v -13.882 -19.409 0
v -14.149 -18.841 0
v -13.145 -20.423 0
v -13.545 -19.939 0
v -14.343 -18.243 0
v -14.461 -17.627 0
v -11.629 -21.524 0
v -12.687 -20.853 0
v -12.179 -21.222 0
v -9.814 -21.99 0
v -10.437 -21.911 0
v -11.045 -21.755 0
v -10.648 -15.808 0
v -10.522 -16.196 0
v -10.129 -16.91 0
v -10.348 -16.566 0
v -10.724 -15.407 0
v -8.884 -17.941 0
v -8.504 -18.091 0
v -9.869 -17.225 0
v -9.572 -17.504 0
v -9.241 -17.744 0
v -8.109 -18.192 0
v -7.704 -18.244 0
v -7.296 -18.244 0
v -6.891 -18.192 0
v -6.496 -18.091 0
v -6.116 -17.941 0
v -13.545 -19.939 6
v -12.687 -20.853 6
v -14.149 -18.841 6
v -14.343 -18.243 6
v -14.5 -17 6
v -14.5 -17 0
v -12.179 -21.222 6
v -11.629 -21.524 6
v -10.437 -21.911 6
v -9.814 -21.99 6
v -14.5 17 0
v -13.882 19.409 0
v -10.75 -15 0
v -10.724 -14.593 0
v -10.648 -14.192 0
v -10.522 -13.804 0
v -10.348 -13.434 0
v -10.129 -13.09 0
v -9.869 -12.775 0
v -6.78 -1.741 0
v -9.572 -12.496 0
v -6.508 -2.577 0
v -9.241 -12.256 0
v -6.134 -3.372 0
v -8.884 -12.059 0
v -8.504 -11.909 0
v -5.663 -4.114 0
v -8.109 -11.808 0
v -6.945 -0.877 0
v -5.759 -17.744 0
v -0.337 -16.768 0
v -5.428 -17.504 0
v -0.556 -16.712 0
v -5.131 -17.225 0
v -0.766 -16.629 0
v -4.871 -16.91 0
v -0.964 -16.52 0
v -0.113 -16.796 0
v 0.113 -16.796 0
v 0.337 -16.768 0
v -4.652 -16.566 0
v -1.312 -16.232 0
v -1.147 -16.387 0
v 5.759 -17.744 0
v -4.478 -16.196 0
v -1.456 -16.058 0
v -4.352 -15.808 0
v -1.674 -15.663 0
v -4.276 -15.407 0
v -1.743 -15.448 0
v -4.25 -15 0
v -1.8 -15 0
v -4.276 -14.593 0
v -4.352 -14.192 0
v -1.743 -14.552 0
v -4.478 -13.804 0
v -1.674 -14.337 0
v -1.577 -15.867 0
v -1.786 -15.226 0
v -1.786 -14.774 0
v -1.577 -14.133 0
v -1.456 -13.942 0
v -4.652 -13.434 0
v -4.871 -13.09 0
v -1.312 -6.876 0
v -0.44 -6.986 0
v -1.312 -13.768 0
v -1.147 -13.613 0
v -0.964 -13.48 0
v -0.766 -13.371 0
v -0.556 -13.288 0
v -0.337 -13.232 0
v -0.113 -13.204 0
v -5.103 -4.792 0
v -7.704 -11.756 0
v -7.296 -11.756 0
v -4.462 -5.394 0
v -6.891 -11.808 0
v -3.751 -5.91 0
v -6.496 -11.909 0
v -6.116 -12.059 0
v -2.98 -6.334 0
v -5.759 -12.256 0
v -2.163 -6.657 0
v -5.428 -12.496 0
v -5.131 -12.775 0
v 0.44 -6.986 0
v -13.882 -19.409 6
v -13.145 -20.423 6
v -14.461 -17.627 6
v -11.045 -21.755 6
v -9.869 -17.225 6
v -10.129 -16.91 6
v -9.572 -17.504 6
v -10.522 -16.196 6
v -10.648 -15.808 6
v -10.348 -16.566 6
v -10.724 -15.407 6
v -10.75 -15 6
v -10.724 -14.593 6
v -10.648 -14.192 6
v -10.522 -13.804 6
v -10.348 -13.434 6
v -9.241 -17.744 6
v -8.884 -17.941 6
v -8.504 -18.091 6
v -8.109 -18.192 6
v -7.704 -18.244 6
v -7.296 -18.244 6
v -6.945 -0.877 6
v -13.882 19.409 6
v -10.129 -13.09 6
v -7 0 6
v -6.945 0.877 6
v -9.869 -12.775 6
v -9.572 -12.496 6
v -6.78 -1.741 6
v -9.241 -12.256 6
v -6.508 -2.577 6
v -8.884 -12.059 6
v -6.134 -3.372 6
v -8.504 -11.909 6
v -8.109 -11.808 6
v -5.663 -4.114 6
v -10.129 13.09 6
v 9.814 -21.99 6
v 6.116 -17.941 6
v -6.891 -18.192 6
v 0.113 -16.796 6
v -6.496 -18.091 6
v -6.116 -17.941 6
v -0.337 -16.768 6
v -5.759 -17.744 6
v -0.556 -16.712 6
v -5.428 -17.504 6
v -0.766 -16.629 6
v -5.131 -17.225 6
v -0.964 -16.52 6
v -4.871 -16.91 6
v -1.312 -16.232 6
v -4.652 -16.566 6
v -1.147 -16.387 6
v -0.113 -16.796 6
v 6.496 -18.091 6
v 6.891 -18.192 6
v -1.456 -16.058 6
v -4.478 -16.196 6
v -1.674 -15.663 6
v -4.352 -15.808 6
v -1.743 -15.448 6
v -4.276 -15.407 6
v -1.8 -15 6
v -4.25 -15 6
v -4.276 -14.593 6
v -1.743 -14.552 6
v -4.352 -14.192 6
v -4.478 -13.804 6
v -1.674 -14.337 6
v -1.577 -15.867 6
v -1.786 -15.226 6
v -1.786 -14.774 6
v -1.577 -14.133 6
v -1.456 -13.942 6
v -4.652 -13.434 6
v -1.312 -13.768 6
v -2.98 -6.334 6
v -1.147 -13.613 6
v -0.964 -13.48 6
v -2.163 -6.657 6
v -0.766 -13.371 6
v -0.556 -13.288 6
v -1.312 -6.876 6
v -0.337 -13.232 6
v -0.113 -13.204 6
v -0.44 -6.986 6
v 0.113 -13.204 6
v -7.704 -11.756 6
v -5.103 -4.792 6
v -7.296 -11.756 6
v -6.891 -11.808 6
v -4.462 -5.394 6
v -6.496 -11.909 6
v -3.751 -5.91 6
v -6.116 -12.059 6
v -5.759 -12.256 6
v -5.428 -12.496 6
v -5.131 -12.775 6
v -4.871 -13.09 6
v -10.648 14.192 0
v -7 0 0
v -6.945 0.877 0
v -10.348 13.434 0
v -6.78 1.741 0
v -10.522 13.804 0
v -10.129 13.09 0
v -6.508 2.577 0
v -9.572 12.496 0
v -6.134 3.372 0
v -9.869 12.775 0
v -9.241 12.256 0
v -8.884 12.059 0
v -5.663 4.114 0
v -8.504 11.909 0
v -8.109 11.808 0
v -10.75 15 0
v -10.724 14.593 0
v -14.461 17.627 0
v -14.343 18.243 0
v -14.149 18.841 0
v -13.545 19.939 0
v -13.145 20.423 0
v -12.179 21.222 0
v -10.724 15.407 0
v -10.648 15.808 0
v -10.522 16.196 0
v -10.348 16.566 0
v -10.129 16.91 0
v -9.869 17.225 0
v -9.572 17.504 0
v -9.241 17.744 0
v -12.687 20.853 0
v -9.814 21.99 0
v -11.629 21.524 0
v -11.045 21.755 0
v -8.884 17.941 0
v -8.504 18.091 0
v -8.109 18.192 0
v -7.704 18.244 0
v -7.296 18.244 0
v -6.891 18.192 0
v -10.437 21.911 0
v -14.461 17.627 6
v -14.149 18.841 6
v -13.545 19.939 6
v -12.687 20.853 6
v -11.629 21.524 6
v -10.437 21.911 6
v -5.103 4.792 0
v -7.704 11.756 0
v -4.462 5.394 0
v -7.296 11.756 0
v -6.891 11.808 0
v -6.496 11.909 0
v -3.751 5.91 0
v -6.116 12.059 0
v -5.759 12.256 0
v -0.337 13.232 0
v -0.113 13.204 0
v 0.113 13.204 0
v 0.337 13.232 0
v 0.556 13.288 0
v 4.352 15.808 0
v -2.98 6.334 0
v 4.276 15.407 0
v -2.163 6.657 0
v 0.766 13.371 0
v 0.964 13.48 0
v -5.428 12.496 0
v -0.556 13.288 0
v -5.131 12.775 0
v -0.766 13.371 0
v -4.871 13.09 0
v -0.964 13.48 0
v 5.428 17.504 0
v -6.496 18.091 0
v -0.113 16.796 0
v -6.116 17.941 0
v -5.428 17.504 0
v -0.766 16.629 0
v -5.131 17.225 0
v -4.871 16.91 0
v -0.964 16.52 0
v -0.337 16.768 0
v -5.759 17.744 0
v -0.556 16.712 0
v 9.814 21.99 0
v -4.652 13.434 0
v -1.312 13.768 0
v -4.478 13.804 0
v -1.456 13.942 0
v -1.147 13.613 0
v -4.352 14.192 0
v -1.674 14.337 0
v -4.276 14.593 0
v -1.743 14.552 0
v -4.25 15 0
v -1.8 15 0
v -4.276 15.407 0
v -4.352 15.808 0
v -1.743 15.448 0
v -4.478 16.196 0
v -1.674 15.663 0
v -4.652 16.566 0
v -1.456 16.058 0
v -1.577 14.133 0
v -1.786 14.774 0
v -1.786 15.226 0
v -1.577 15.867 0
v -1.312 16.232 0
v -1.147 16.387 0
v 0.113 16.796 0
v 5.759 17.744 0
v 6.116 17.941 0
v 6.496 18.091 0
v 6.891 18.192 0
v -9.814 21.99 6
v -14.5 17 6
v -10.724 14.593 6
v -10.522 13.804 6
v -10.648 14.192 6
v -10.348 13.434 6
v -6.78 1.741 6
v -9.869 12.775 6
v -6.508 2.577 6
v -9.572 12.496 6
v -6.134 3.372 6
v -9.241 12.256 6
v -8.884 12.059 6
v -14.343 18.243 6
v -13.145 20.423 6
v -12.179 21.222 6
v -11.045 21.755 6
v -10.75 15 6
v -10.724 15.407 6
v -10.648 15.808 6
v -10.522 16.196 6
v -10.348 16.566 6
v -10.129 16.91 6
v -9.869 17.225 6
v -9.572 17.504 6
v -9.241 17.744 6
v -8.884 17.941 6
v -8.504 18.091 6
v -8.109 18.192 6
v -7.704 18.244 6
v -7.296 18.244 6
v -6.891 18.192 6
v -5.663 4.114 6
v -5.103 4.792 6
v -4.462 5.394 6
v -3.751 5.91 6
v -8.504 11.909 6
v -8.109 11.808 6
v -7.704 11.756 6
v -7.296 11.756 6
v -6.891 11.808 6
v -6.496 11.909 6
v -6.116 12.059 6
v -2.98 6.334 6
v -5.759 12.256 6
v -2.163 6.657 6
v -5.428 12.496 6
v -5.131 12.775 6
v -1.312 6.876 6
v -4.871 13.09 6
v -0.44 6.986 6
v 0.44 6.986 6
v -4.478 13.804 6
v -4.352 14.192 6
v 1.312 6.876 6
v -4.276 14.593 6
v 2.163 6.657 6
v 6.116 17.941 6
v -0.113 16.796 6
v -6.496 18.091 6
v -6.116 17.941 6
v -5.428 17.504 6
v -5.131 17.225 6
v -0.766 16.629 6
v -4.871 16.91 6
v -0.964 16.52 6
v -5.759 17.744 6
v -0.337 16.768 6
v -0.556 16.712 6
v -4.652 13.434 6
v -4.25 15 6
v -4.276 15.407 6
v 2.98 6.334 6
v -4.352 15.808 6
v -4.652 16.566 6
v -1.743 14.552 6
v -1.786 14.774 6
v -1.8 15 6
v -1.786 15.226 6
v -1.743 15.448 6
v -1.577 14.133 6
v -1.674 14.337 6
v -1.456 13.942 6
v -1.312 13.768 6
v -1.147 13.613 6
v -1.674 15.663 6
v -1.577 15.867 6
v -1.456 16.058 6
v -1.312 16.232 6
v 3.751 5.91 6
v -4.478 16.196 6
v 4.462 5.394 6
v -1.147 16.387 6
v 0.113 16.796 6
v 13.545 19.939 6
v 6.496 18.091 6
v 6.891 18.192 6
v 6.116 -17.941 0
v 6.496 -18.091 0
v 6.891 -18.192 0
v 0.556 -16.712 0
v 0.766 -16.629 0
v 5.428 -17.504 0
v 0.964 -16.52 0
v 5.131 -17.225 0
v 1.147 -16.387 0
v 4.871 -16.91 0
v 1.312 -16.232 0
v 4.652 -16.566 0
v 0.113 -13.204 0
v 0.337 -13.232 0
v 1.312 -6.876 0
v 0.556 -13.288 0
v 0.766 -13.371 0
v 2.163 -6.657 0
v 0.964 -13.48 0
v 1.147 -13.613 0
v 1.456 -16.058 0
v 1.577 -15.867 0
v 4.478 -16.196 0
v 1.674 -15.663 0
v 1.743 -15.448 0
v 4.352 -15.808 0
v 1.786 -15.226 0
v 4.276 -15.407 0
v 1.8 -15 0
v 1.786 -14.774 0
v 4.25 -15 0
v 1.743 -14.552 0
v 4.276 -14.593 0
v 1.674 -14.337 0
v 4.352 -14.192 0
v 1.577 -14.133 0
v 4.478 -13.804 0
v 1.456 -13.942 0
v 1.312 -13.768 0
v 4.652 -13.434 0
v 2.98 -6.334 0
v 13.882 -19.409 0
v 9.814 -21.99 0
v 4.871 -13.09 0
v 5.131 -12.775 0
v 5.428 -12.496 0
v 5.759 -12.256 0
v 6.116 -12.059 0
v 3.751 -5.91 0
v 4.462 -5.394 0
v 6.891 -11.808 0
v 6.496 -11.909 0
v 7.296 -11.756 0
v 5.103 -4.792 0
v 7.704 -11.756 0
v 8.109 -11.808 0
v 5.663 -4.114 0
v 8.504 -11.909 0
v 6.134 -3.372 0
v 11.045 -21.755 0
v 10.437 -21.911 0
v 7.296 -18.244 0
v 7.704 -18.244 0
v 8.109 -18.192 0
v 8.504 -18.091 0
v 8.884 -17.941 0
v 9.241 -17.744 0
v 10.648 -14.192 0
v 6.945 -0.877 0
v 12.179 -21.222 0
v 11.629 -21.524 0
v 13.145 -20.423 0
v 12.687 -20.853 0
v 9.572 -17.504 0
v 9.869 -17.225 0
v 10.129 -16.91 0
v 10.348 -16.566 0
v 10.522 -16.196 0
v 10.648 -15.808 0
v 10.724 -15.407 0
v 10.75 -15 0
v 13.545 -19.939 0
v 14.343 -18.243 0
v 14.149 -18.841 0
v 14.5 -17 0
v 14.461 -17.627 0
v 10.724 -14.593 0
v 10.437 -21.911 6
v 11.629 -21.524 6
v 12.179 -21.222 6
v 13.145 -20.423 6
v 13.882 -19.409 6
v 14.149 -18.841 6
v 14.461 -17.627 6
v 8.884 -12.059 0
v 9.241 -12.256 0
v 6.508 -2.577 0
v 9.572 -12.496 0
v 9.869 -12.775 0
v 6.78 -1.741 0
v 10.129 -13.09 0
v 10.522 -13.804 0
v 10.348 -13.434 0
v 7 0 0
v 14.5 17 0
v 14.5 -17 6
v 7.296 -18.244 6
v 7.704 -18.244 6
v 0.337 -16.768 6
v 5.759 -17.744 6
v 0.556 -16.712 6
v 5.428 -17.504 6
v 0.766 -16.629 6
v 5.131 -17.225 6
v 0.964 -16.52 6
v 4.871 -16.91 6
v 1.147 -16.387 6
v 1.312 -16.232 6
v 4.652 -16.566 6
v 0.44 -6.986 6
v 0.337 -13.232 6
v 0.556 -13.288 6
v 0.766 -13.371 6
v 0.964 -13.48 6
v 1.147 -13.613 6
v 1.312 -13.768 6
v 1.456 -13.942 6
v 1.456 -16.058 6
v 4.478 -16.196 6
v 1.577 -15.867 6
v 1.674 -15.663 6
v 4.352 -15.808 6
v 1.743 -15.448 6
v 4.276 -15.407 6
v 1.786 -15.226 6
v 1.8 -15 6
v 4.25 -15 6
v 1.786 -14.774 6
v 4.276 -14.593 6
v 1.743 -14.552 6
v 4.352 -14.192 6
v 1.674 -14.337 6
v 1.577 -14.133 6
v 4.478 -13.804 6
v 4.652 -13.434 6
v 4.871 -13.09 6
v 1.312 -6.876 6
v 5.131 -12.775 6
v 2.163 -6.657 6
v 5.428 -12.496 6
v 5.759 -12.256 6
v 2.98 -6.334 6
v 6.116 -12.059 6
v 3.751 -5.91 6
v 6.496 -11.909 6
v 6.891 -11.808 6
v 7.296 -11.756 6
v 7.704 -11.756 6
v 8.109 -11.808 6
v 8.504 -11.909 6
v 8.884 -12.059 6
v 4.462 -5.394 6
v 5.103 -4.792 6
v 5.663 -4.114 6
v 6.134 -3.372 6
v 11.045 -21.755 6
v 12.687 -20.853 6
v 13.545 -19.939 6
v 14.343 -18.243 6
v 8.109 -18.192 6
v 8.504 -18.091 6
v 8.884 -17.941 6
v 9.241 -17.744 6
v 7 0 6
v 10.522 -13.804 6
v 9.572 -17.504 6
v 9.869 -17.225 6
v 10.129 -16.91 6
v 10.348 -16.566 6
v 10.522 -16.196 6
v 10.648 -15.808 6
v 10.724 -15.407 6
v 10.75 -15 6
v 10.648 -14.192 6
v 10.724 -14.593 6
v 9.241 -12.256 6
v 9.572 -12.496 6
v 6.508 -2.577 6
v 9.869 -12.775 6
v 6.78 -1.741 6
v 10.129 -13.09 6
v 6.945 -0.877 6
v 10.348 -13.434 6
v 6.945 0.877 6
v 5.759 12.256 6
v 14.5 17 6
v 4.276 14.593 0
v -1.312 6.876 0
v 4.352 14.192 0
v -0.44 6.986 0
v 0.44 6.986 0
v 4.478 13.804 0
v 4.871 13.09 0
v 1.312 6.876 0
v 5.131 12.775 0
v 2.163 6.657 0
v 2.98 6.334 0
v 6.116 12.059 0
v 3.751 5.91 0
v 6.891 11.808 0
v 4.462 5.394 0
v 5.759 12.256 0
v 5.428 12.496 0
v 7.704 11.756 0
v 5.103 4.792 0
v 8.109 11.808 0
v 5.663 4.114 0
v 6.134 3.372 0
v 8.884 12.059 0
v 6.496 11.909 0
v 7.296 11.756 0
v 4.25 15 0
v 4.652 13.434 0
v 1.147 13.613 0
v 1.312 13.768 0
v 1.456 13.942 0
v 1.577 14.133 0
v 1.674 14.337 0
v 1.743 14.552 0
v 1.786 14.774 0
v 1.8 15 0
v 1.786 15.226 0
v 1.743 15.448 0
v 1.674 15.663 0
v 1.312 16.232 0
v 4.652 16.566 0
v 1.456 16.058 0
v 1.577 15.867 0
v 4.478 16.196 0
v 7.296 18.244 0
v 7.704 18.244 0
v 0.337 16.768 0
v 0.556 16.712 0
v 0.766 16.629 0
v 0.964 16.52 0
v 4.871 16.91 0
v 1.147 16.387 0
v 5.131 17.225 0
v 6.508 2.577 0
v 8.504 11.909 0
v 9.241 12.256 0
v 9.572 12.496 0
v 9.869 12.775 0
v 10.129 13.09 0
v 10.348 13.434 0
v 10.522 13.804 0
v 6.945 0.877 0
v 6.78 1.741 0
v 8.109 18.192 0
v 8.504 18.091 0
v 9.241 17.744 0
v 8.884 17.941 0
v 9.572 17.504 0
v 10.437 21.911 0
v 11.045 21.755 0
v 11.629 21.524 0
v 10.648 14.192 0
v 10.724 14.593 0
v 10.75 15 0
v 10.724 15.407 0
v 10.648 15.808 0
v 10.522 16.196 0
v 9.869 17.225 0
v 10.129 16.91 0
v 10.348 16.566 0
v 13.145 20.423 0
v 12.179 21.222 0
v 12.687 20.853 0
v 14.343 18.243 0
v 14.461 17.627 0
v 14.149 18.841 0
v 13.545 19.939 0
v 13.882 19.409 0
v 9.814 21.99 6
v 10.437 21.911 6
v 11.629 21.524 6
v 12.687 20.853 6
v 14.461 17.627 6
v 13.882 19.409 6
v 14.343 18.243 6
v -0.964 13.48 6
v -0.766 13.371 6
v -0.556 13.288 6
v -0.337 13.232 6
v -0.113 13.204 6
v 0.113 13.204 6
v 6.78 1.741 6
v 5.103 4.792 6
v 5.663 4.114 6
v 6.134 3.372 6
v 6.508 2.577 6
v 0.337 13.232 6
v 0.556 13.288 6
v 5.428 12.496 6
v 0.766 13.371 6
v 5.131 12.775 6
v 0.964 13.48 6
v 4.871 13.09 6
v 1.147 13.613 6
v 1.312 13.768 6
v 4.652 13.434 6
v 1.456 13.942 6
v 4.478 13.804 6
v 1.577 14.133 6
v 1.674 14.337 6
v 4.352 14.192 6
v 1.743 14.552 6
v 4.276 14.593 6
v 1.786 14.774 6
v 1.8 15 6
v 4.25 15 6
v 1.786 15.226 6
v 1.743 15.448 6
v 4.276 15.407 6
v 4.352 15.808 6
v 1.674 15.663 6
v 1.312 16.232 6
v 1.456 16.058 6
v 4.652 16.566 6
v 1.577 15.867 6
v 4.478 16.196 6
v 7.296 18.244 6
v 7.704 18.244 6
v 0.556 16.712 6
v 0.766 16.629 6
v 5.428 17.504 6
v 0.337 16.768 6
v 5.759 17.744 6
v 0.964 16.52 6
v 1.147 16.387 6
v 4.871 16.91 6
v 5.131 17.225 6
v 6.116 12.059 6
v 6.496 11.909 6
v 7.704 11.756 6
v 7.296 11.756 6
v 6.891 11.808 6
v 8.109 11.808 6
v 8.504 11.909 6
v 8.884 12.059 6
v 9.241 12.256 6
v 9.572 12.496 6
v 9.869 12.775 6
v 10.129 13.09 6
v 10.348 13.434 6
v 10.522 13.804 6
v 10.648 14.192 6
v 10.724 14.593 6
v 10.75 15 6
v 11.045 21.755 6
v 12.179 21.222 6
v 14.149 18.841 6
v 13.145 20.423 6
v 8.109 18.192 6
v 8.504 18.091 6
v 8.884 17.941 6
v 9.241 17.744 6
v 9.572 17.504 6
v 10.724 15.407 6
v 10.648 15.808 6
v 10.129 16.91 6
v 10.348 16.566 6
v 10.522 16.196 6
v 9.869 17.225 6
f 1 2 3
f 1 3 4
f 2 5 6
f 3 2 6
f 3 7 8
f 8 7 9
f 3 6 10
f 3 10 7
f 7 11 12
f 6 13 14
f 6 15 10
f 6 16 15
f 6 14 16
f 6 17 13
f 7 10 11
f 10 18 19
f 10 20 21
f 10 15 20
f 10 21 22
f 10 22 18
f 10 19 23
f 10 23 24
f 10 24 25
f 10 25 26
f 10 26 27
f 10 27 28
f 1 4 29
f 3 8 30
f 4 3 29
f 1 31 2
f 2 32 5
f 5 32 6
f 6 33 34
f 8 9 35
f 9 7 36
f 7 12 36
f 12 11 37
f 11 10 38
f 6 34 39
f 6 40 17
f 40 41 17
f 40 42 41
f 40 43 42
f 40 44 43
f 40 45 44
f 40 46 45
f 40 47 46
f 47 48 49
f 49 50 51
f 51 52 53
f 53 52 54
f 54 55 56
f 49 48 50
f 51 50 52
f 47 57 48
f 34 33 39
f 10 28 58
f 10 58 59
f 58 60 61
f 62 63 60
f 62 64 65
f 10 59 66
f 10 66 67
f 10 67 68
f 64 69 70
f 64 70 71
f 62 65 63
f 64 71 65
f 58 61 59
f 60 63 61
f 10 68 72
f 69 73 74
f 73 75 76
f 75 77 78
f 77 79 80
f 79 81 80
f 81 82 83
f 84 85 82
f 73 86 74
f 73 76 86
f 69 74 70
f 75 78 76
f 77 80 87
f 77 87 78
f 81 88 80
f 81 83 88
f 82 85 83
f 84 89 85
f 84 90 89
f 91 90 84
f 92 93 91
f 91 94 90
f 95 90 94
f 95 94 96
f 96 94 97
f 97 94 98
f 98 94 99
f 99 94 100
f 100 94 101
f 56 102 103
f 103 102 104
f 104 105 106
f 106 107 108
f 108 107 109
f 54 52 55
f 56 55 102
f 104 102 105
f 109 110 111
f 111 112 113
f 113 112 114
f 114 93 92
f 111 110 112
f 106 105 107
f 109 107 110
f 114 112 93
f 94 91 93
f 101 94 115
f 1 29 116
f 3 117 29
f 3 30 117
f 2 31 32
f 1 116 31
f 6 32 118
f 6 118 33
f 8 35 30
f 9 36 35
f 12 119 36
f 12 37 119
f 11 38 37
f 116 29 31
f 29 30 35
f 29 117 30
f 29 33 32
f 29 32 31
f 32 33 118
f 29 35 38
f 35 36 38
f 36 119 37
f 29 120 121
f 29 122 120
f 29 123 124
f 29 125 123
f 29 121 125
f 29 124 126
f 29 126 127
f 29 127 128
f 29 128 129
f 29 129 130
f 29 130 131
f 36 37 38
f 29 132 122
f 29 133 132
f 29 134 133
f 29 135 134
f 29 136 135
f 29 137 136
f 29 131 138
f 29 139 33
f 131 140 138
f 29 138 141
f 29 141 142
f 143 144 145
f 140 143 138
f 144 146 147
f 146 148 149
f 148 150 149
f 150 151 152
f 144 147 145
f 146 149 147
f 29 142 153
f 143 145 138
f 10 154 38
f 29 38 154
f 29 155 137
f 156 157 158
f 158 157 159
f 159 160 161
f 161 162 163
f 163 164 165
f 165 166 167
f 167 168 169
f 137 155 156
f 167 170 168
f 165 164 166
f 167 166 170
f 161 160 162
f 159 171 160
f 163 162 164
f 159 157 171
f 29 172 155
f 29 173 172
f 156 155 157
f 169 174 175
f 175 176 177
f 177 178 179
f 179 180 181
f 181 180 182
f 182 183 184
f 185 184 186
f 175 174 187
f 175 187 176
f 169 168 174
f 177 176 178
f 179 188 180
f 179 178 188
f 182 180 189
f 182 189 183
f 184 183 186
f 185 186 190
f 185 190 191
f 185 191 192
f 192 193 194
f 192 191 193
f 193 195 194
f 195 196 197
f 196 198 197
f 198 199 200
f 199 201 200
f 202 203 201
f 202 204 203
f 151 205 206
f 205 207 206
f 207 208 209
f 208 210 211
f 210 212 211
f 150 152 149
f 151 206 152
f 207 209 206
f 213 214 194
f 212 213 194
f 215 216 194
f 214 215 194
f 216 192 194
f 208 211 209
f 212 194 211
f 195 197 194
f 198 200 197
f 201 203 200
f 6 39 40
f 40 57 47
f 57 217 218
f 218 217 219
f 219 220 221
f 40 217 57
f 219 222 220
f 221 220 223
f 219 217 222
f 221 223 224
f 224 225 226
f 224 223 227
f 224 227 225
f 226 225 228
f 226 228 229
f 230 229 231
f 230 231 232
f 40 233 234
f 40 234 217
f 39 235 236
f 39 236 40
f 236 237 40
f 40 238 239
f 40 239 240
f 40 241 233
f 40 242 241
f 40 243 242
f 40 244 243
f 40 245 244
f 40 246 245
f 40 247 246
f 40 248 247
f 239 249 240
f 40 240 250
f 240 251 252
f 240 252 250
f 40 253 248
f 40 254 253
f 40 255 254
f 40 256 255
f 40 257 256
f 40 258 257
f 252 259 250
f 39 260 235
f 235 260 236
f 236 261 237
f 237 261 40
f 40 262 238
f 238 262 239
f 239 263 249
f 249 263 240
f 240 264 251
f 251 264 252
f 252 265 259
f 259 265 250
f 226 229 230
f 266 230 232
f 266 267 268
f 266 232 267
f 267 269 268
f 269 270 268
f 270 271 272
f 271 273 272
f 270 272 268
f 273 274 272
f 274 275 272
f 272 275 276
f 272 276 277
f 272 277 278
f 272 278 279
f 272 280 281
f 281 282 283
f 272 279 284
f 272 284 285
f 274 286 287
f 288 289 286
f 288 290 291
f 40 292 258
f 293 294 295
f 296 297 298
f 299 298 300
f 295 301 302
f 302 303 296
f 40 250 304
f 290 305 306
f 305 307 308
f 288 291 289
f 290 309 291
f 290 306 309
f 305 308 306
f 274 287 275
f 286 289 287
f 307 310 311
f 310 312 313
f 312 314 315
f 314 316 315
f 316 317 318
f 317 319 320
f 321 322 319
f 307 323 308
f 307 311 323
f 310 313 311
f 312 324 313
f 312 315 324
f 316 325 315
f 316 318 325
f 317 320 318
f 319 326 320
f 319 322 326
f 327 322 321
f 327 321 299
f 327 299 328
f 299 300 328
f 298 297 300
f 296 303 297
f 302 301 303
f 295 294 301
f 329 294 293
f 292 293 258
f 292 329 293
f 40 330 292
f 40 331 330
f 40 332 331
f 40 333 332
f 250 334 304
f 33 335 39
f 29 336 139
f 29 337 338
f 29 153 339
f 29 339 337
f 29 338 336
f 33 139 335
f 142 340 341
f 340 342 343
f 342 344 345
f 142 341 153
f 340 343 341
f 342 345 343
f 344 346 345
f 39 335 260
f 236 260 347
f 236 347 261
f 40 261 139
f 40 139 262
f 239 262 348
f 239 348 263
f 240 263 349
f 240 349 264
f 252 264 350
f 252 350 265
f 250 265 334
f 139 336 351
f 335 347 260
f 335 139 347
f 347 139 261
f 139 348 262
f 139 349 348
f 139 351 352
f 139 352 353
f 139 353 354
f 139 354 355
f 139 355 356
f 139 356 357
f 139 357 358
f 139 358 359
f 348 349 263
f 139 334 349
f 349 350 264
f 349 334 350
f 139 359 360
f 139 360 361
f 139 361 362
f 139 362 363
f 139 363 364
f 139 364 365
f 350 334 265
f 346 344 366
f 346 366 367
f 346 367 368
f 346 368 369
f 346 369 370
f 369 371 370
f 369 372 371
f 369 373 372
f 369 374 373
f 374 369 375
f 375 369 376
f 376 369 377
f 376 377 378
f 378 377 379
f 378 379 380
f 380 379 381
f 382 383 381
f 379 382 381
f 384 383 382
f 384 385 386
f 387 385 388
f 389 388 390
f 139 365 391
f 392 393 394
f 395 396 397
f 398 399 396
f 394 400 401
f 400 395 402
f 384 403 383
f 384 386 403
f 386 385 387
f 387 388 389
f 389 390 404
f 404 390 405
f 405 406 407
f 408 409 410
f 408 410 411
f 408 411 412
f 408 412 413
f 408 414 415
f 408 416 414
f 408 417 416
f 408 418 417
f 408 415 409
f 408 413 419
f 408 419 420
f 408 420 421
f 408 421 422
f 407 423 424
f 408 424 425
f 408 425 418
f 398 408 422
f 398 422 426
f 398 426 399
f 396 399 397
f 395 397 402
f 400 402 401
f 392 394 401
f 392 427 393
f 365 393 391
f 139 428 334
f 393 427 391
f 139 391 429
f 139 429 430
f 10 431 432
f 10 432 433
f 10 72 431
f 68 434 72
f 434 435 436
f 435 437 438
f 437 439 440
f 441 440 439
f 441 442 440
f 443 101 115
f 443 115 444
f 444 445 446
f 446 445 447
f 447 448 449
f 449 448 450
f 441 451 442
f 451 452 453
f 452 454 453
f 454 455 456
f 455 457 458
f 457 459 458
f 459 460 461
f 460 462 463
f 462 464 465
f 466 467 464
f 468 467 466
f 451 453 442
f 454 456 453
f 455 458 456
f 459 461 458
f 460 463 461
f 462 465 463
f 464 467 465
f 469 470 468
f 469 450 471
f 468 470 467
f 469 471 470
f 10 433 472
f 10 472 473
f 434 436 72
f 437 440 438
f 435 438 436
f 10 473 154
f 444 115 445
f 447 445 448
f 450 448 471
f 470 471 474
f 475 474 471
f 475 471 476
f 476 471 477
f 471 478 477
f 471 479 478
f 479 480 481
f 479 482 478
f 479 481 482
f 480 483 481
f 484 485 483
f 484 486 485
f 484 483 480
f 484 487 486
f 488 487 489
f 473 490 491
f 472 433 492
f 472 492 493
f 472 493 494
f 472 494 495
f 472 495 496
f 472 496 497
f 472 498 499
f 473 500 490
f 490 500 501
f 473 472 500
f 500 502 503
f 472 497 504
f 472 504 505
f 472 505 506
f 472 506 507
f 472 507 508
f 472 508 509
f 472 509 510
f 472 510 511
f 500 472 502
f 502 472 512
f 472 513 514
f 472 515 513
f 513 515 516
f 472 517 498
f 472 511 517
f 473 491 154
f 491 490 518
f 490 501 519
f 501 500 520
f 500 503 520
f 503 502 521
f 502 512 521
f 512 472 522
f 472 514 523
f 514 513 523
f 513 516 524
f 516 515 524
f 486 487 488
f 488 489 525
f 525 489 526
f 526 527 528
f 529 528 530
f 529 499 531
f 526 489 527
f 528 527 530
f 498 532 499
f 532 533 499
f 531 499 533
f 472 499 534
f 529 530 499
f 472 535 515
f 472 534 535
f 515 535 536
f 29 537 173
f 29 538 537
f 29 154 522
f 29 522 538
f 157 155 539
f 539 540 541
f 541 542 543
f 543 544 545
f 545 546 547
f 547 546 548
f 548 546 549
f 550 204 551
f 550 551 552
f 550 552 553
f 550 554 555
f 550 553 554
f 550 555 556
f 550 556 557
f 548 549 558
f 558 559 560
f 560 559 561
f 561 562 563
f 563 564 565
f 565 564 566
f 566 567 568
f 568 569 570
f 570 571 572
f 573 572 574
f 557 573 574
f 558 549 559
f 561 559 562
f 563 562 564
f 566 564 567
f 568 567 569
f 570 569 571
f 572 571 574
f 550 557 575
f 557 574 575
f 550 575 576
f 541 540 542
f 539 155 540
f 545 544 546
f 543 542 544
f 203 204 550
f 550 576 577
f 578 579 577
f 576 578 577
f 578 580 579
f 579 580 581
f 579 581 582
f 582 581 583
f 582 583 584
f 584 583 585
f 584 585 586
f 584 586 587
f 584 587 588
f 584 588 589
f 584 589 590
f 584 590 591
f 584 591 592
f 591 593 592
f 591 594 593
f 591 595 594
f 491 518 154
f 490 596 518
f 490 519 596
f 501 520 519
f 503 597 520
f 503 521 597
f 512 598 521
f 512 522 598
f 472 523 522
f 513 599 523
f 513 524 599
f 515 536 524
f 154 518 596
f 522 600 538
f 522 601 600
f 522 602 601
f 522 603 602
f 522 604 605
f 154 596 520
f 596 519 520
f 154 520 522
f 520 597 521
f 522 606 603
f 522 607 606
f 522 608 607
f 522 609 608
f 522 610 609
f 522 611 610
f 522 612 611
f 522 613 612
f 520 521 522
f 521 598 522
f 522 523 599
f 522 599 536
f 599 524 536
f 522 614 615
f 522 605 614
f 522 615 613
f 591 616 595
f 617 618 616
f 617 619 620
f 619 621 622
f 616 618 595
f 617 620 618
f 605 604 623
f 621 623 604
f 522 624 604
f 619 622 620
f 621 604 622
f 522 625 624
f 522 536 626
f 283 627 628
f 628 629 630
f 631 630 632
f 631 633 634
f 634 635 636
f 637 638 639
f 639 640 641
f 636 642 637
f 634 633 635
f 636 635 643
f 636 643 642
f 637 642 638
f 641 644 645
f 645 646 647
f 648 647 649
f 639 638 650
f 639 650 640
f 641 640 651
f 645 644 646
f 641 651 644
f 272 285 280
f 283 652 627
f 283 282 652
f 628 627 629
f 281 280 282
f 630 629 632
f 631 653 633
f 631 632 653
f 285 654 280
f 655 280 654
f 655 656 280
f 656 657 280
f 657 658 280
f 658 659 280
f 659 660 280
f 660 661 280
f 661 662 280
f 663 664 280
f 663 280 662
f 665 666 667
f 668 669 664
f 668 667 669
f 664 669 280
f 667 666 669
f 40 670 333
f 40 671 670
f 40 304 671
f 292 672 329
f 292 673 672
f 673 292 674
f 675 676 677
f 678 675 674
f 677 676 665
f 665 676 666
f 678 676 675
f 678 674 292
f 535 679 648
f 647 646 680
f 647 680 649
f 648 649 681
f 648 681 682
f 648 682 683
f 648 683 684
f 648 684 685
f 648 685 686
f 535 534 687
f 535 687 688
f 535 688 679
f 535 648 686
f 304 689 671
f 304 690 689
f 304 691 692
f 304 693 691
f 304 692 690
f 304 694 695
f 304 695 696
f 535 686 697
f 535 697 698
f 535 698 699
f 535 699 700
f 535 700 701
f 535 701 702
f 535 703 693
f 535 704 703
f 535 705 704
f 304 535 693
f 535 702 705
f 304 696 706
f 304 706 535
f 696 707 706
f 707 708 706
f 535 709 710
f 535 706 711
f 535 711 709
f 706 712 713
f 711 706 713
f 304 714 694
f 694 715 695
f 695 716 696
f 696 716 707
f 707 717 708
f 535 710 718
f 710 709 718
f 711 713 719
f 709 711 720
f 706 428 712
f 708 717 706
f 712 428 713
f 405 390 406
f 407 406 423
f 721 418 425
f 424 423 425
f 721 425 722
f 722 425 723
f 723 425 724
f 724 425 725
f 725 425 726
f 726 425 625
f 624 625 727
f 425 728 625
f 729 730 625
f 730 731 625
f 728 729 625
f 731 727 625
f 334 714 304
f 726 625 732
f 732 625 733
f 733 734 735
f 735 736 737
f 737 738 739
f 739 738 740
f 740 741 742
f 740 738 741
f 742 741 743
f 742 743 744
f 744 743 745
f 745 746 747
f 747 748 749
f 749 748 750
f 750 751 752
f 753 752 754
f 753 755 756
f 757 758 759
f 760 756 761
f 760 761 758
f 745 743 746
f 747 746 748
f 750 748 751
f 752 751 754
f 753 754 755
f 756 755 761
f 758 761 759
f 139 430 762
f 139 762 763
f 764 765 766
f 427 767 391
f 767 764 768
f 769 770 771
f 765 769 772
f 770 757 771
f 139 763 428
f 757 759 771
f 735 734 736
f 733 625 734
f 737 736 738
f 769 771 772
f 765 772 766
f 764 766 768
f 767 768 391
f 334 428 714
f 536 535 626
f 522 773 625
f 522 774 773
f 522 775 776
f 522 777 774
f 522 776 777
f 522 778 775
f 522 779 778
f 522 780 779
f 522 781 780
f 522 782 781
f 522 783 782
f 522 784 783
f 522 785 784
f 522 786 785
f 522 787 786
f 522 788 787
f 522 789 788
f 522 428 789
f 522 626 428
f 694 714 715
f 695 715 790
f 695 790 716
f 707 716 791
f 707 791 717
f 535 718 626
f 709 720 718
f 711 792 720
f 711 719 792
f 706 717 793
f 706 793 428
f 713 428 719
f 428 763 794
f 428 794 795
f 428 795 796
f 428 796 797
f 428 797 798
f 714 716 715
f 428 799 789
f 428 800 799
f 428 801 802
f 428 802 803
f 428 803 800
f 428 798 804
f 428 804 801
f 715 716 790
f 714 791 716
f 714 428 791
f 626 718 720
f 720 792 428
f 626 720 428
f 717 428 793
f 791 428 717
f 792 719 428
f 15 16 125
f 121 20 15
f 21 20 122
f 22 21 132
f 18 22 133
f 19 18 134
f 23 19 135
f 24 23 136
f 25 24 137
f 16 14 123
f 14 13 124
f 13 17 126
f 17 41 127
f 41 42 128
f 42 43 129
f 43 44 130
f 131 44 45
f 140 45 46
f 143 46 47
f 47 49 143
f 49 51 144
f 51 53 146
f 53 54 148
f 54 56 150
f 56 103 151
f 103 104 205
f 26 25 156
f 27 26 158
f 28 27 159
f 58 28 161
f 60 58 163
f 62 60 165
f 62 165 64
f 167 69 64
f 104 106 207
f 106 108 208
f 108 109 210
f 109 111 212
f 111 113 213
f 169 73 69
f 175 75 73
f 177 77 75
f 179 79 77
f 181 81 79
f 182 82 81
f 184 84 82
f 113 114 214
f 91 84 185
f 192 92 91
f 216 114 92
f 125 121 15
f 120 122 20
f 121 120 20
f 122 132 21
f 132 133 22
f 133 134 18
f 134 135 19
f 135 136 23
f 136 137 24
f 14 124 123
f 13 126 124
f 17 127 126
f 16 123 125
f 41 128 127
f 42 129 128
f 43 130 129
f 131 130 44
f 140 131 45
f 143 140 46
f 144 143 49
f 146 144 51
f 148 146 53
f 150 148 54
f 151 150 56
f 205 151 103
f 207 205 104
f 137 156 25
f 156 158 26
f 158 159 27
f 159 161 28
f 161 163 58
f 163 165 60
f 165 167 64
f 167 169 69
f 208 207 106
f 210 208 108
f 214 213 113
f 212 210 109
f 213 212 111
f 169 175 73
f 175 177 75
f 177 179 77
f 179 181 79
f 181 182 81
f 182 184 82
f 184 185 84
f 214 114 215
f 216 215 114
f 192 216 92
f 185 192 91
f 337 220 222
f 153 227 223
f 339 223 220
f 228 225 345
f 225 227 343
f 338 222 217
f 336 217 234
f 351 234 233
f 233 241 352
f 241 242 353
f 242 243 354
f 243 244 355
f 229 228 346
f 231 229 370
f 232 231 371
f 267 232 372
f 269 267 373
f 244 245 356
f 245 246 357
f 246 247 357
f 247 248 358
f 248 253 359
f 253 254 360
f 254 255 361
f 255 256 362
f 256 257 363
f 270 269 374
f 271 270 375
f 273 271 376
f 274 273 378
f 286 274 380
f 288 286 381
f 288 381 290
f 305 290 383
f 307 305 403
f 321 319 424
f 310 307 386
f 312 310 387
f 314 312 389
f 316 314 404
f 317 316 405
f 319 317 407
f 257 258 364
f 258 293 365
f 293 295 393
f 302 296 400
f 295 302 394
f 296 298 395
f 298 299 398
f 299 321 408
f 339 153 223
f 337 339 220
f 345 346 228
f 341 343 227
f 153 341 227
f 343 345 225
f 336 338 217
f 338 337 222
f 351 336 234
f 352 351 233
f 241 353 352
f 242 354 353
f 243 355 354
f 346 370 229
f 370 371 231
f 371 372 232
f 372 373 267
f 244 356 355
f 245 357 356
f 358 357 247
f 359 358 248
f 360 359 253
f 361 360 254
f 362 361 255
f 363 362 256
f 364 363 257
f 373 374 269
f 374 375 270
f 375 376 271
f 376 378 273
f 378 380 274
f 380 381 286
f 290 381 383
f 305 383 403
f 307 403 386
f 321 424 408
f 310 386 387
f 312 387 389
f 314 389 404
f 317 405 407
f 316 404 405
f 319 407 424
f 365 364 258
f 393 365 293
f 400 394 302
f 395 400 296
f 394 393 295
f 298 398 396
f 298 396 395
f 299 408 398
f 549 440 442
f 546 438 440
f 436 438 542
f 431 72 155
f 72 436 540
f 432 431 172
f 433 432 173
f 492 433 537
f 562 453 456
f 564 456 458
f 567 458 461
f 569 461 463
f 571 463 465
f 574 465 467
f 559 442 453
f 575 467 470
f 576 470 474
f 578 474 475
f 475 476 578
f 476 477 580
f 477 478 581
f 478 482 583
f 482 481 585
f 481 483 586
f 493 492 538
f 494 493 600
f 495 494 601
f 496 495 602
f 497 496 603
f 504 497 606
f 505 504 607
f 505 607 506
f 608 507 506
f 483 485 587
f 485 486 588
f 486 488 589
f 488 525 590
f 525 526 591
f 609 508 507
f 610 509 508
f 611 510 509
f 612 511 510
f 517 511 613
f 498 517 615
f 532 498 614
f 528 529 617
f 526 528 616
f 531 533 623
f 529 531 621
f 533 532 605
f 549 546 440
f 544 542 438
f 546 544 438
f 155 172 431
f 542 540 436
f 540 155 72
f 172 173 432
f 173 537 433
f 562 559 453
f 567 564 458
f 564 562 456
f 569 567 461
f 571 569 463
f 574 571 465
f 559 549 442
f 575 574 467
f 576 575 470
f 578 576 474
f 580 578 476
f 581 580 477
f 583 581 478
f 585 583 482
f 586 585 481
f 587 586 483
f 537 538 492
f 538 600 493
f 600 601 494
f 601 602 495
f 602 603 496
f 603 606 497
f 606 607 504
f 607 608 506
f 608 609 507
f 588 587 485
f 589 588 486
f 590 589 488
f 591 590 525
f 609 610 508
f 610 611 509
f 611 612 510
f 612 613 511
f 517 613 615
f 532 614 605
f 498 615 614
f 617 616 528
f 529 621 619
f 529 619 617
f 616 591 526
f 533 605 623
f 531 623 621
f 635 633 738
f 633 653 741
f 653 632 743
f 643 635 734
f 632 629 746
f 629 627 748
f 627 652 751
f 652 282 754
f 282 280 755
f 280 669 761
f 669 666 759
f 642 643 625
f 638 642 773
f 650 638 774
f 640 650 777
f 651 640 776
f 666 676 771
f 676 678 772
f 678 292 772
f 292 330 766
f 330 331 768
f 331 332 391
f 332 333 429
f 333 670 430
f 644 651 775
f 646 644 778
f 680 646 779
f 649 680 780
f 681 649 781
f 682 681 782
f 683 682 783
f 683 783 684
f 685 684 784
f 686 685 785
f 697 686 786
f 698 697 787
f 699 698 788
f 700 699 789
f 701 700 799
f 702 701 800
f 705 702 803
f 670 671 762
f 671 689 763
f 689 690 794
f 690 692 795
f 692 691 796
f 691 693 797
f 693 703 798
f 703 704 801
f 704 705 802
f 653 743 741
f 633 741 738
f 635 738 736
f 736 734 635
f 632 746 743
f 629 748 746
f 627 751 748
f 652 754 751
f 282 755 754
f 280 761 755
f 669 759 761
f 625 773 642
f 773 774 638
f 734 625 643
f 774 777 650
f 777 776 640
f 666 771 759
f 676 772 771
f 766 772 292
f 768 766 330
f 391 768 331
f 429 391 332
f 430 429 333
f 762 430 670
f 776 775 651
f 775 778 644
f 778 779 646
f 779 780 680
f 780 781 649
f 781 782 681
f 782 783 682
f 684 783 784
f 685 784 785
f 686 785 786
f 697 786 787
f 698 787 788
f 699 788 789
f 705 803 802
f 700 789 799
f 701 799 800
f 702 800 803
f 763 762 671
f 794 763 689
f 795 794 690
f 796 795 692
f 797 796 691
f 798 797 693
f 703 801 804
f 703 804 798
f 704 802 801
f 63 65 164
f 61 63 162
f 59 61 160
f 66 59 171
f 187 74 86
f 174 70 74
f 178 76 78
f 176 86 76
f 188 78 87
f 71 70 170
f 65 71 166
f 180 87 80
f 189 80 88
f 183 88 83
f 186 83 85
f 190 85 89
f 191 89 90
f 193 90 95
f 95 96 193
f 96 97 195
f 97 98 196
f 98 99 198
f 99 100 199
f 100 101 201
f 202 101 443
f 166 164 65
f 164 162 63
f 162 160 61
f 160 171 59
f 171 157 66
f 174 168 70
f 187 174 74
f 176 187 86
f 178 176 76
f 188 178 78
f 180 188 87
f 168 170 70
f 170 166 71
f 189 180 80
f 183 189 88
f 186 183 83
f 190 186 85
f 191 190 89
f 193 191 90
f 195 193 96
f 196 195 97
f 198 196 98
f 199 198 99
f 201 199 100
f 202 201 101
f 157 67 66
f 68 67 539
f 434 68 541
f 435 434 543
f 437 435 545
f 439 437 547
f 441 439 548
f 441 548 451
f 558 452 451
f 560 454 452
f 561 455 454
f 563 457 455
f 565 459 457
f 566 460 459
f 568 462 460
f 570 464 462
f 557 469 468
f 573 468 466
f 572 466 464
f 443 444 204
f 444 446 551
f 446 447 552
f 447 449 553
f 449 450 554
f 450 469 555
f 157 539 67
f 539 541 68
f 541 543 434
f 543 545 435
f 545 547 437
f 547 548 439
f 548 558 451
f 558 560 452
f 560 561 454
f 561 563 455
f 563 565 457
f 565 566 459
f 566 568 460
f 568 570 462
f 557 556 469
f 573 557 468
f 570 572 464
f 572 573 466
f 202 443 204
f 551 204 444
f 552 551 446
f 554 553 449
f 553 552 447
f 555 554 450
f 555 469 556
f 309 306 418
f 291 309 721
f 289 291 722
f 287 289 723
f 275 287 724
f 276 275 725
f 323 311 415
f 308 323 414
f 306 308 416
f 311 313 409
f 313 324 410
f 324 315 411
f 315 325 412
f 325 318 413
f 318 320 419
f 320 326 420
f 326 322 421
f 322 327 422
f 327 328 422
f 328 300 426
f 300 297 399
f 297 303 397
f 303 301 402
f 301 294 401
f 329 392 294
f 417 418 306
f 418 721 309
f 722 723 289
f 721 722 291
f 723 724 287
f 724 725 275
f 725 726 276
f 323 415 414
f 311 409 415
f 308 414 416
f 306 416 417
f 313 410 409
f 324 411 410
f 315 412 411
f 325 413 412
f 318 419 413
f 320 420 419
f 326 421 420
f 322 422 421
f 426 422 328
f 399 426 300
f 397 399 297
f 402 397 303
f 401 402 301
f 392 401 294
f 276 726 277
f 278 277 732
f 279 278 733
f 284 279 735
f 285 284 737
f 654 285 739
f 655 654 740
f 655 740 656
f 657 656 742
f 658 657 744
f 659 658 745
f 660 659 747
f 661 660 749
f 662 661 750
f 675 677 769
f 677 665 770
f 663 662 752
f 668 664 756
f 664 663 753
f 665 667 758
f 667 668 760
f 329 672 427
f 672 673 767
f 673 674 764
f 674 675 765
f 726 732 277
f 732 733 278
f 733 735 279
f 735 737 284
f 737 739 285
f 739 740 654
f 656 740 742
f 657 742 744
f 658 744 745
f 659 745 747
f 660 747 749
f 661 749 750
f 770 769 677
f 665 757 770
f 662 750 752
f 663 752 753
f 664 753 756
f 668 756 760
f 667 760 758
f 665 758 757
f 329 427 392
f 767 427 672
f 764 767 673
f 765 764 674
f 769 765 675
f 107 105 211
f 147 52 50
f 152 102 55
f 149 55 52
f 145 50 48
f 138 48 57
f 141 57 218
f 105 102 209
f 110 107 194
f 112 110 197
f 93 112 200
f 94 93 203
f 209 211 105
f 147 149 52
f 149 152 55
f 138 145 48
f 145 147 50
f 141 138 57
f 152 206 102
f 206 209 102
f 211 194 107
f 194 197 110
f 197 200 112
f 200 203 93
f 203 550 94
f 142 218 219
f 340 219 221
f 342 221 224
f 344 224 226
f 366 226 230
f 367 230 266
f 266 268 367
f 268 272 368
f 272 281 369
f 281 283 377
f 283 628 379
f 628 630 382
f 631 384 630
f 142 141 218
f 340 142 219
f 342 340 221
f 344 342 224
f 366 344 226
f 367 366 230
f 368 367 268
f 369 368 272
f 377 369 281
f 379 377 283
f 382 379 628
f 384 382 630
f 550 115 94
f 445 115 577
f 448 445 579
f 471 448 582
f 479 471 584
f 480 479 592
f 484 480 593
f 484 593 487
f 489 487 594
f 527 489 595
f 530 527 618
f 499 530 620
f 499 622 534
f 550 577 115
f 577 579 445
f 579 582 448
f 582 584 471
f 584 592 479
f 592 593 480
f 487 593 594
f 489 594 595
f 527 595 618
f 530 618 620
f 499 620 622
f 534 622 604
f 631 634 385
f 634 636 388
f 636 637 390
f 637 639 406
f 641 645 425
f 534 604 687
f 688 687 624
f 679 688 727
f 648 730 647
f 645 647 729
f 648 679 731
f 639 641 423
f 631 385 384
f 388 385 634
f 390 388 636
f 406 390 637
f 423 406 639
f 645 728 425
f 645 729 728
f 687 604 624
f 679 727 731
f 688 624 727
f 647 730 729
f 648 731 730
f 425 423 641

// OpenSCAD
$fn = 50;

difference() {
	union() {
		hull() {
			translate(v = [-9.5, 17.0, 0]) {
				cylinder(h = 6, r = 5);
			}
			translate(v = [9.5, 17.0, 0]) {
				cylinder(h = 6, r = 5);
			}
			translate(v = [-9.5, -17.0, 0]) {
				cylinder(h = 6, r = 5);
			}
			translate(v = [9.5, -17.0, 0]) {
				cylinder(h = 6, r = 5);
			}
		}
	}
	union() {
		translate(v = [-7.5, -15.0, 0]) {
			cylinder(h = 6, r = 3.25);
		}
		translate(v = [-7.5, 15.0, 0]) {
			cylinder(h = 6, r = 3.25);
		}
		translate(v = [7.5, -15.0, 0]) {
			cylinder(h = 6, r = 3.25);
		}
		translate(v = [7.5, 15.0, 0]) {
			cylinder(h = 6, r = 3.25);
		}
		translate(v = [0.0, -15.0, 0]) {
			cylinder(h = 6, r = 1.8);
		}
		translate(v = [0.0, 15.0, 0]) {
			cylinder(h = 6, r = 1.8);
		}
		cylinder(h = 6, r = 7.0);
	}
}
